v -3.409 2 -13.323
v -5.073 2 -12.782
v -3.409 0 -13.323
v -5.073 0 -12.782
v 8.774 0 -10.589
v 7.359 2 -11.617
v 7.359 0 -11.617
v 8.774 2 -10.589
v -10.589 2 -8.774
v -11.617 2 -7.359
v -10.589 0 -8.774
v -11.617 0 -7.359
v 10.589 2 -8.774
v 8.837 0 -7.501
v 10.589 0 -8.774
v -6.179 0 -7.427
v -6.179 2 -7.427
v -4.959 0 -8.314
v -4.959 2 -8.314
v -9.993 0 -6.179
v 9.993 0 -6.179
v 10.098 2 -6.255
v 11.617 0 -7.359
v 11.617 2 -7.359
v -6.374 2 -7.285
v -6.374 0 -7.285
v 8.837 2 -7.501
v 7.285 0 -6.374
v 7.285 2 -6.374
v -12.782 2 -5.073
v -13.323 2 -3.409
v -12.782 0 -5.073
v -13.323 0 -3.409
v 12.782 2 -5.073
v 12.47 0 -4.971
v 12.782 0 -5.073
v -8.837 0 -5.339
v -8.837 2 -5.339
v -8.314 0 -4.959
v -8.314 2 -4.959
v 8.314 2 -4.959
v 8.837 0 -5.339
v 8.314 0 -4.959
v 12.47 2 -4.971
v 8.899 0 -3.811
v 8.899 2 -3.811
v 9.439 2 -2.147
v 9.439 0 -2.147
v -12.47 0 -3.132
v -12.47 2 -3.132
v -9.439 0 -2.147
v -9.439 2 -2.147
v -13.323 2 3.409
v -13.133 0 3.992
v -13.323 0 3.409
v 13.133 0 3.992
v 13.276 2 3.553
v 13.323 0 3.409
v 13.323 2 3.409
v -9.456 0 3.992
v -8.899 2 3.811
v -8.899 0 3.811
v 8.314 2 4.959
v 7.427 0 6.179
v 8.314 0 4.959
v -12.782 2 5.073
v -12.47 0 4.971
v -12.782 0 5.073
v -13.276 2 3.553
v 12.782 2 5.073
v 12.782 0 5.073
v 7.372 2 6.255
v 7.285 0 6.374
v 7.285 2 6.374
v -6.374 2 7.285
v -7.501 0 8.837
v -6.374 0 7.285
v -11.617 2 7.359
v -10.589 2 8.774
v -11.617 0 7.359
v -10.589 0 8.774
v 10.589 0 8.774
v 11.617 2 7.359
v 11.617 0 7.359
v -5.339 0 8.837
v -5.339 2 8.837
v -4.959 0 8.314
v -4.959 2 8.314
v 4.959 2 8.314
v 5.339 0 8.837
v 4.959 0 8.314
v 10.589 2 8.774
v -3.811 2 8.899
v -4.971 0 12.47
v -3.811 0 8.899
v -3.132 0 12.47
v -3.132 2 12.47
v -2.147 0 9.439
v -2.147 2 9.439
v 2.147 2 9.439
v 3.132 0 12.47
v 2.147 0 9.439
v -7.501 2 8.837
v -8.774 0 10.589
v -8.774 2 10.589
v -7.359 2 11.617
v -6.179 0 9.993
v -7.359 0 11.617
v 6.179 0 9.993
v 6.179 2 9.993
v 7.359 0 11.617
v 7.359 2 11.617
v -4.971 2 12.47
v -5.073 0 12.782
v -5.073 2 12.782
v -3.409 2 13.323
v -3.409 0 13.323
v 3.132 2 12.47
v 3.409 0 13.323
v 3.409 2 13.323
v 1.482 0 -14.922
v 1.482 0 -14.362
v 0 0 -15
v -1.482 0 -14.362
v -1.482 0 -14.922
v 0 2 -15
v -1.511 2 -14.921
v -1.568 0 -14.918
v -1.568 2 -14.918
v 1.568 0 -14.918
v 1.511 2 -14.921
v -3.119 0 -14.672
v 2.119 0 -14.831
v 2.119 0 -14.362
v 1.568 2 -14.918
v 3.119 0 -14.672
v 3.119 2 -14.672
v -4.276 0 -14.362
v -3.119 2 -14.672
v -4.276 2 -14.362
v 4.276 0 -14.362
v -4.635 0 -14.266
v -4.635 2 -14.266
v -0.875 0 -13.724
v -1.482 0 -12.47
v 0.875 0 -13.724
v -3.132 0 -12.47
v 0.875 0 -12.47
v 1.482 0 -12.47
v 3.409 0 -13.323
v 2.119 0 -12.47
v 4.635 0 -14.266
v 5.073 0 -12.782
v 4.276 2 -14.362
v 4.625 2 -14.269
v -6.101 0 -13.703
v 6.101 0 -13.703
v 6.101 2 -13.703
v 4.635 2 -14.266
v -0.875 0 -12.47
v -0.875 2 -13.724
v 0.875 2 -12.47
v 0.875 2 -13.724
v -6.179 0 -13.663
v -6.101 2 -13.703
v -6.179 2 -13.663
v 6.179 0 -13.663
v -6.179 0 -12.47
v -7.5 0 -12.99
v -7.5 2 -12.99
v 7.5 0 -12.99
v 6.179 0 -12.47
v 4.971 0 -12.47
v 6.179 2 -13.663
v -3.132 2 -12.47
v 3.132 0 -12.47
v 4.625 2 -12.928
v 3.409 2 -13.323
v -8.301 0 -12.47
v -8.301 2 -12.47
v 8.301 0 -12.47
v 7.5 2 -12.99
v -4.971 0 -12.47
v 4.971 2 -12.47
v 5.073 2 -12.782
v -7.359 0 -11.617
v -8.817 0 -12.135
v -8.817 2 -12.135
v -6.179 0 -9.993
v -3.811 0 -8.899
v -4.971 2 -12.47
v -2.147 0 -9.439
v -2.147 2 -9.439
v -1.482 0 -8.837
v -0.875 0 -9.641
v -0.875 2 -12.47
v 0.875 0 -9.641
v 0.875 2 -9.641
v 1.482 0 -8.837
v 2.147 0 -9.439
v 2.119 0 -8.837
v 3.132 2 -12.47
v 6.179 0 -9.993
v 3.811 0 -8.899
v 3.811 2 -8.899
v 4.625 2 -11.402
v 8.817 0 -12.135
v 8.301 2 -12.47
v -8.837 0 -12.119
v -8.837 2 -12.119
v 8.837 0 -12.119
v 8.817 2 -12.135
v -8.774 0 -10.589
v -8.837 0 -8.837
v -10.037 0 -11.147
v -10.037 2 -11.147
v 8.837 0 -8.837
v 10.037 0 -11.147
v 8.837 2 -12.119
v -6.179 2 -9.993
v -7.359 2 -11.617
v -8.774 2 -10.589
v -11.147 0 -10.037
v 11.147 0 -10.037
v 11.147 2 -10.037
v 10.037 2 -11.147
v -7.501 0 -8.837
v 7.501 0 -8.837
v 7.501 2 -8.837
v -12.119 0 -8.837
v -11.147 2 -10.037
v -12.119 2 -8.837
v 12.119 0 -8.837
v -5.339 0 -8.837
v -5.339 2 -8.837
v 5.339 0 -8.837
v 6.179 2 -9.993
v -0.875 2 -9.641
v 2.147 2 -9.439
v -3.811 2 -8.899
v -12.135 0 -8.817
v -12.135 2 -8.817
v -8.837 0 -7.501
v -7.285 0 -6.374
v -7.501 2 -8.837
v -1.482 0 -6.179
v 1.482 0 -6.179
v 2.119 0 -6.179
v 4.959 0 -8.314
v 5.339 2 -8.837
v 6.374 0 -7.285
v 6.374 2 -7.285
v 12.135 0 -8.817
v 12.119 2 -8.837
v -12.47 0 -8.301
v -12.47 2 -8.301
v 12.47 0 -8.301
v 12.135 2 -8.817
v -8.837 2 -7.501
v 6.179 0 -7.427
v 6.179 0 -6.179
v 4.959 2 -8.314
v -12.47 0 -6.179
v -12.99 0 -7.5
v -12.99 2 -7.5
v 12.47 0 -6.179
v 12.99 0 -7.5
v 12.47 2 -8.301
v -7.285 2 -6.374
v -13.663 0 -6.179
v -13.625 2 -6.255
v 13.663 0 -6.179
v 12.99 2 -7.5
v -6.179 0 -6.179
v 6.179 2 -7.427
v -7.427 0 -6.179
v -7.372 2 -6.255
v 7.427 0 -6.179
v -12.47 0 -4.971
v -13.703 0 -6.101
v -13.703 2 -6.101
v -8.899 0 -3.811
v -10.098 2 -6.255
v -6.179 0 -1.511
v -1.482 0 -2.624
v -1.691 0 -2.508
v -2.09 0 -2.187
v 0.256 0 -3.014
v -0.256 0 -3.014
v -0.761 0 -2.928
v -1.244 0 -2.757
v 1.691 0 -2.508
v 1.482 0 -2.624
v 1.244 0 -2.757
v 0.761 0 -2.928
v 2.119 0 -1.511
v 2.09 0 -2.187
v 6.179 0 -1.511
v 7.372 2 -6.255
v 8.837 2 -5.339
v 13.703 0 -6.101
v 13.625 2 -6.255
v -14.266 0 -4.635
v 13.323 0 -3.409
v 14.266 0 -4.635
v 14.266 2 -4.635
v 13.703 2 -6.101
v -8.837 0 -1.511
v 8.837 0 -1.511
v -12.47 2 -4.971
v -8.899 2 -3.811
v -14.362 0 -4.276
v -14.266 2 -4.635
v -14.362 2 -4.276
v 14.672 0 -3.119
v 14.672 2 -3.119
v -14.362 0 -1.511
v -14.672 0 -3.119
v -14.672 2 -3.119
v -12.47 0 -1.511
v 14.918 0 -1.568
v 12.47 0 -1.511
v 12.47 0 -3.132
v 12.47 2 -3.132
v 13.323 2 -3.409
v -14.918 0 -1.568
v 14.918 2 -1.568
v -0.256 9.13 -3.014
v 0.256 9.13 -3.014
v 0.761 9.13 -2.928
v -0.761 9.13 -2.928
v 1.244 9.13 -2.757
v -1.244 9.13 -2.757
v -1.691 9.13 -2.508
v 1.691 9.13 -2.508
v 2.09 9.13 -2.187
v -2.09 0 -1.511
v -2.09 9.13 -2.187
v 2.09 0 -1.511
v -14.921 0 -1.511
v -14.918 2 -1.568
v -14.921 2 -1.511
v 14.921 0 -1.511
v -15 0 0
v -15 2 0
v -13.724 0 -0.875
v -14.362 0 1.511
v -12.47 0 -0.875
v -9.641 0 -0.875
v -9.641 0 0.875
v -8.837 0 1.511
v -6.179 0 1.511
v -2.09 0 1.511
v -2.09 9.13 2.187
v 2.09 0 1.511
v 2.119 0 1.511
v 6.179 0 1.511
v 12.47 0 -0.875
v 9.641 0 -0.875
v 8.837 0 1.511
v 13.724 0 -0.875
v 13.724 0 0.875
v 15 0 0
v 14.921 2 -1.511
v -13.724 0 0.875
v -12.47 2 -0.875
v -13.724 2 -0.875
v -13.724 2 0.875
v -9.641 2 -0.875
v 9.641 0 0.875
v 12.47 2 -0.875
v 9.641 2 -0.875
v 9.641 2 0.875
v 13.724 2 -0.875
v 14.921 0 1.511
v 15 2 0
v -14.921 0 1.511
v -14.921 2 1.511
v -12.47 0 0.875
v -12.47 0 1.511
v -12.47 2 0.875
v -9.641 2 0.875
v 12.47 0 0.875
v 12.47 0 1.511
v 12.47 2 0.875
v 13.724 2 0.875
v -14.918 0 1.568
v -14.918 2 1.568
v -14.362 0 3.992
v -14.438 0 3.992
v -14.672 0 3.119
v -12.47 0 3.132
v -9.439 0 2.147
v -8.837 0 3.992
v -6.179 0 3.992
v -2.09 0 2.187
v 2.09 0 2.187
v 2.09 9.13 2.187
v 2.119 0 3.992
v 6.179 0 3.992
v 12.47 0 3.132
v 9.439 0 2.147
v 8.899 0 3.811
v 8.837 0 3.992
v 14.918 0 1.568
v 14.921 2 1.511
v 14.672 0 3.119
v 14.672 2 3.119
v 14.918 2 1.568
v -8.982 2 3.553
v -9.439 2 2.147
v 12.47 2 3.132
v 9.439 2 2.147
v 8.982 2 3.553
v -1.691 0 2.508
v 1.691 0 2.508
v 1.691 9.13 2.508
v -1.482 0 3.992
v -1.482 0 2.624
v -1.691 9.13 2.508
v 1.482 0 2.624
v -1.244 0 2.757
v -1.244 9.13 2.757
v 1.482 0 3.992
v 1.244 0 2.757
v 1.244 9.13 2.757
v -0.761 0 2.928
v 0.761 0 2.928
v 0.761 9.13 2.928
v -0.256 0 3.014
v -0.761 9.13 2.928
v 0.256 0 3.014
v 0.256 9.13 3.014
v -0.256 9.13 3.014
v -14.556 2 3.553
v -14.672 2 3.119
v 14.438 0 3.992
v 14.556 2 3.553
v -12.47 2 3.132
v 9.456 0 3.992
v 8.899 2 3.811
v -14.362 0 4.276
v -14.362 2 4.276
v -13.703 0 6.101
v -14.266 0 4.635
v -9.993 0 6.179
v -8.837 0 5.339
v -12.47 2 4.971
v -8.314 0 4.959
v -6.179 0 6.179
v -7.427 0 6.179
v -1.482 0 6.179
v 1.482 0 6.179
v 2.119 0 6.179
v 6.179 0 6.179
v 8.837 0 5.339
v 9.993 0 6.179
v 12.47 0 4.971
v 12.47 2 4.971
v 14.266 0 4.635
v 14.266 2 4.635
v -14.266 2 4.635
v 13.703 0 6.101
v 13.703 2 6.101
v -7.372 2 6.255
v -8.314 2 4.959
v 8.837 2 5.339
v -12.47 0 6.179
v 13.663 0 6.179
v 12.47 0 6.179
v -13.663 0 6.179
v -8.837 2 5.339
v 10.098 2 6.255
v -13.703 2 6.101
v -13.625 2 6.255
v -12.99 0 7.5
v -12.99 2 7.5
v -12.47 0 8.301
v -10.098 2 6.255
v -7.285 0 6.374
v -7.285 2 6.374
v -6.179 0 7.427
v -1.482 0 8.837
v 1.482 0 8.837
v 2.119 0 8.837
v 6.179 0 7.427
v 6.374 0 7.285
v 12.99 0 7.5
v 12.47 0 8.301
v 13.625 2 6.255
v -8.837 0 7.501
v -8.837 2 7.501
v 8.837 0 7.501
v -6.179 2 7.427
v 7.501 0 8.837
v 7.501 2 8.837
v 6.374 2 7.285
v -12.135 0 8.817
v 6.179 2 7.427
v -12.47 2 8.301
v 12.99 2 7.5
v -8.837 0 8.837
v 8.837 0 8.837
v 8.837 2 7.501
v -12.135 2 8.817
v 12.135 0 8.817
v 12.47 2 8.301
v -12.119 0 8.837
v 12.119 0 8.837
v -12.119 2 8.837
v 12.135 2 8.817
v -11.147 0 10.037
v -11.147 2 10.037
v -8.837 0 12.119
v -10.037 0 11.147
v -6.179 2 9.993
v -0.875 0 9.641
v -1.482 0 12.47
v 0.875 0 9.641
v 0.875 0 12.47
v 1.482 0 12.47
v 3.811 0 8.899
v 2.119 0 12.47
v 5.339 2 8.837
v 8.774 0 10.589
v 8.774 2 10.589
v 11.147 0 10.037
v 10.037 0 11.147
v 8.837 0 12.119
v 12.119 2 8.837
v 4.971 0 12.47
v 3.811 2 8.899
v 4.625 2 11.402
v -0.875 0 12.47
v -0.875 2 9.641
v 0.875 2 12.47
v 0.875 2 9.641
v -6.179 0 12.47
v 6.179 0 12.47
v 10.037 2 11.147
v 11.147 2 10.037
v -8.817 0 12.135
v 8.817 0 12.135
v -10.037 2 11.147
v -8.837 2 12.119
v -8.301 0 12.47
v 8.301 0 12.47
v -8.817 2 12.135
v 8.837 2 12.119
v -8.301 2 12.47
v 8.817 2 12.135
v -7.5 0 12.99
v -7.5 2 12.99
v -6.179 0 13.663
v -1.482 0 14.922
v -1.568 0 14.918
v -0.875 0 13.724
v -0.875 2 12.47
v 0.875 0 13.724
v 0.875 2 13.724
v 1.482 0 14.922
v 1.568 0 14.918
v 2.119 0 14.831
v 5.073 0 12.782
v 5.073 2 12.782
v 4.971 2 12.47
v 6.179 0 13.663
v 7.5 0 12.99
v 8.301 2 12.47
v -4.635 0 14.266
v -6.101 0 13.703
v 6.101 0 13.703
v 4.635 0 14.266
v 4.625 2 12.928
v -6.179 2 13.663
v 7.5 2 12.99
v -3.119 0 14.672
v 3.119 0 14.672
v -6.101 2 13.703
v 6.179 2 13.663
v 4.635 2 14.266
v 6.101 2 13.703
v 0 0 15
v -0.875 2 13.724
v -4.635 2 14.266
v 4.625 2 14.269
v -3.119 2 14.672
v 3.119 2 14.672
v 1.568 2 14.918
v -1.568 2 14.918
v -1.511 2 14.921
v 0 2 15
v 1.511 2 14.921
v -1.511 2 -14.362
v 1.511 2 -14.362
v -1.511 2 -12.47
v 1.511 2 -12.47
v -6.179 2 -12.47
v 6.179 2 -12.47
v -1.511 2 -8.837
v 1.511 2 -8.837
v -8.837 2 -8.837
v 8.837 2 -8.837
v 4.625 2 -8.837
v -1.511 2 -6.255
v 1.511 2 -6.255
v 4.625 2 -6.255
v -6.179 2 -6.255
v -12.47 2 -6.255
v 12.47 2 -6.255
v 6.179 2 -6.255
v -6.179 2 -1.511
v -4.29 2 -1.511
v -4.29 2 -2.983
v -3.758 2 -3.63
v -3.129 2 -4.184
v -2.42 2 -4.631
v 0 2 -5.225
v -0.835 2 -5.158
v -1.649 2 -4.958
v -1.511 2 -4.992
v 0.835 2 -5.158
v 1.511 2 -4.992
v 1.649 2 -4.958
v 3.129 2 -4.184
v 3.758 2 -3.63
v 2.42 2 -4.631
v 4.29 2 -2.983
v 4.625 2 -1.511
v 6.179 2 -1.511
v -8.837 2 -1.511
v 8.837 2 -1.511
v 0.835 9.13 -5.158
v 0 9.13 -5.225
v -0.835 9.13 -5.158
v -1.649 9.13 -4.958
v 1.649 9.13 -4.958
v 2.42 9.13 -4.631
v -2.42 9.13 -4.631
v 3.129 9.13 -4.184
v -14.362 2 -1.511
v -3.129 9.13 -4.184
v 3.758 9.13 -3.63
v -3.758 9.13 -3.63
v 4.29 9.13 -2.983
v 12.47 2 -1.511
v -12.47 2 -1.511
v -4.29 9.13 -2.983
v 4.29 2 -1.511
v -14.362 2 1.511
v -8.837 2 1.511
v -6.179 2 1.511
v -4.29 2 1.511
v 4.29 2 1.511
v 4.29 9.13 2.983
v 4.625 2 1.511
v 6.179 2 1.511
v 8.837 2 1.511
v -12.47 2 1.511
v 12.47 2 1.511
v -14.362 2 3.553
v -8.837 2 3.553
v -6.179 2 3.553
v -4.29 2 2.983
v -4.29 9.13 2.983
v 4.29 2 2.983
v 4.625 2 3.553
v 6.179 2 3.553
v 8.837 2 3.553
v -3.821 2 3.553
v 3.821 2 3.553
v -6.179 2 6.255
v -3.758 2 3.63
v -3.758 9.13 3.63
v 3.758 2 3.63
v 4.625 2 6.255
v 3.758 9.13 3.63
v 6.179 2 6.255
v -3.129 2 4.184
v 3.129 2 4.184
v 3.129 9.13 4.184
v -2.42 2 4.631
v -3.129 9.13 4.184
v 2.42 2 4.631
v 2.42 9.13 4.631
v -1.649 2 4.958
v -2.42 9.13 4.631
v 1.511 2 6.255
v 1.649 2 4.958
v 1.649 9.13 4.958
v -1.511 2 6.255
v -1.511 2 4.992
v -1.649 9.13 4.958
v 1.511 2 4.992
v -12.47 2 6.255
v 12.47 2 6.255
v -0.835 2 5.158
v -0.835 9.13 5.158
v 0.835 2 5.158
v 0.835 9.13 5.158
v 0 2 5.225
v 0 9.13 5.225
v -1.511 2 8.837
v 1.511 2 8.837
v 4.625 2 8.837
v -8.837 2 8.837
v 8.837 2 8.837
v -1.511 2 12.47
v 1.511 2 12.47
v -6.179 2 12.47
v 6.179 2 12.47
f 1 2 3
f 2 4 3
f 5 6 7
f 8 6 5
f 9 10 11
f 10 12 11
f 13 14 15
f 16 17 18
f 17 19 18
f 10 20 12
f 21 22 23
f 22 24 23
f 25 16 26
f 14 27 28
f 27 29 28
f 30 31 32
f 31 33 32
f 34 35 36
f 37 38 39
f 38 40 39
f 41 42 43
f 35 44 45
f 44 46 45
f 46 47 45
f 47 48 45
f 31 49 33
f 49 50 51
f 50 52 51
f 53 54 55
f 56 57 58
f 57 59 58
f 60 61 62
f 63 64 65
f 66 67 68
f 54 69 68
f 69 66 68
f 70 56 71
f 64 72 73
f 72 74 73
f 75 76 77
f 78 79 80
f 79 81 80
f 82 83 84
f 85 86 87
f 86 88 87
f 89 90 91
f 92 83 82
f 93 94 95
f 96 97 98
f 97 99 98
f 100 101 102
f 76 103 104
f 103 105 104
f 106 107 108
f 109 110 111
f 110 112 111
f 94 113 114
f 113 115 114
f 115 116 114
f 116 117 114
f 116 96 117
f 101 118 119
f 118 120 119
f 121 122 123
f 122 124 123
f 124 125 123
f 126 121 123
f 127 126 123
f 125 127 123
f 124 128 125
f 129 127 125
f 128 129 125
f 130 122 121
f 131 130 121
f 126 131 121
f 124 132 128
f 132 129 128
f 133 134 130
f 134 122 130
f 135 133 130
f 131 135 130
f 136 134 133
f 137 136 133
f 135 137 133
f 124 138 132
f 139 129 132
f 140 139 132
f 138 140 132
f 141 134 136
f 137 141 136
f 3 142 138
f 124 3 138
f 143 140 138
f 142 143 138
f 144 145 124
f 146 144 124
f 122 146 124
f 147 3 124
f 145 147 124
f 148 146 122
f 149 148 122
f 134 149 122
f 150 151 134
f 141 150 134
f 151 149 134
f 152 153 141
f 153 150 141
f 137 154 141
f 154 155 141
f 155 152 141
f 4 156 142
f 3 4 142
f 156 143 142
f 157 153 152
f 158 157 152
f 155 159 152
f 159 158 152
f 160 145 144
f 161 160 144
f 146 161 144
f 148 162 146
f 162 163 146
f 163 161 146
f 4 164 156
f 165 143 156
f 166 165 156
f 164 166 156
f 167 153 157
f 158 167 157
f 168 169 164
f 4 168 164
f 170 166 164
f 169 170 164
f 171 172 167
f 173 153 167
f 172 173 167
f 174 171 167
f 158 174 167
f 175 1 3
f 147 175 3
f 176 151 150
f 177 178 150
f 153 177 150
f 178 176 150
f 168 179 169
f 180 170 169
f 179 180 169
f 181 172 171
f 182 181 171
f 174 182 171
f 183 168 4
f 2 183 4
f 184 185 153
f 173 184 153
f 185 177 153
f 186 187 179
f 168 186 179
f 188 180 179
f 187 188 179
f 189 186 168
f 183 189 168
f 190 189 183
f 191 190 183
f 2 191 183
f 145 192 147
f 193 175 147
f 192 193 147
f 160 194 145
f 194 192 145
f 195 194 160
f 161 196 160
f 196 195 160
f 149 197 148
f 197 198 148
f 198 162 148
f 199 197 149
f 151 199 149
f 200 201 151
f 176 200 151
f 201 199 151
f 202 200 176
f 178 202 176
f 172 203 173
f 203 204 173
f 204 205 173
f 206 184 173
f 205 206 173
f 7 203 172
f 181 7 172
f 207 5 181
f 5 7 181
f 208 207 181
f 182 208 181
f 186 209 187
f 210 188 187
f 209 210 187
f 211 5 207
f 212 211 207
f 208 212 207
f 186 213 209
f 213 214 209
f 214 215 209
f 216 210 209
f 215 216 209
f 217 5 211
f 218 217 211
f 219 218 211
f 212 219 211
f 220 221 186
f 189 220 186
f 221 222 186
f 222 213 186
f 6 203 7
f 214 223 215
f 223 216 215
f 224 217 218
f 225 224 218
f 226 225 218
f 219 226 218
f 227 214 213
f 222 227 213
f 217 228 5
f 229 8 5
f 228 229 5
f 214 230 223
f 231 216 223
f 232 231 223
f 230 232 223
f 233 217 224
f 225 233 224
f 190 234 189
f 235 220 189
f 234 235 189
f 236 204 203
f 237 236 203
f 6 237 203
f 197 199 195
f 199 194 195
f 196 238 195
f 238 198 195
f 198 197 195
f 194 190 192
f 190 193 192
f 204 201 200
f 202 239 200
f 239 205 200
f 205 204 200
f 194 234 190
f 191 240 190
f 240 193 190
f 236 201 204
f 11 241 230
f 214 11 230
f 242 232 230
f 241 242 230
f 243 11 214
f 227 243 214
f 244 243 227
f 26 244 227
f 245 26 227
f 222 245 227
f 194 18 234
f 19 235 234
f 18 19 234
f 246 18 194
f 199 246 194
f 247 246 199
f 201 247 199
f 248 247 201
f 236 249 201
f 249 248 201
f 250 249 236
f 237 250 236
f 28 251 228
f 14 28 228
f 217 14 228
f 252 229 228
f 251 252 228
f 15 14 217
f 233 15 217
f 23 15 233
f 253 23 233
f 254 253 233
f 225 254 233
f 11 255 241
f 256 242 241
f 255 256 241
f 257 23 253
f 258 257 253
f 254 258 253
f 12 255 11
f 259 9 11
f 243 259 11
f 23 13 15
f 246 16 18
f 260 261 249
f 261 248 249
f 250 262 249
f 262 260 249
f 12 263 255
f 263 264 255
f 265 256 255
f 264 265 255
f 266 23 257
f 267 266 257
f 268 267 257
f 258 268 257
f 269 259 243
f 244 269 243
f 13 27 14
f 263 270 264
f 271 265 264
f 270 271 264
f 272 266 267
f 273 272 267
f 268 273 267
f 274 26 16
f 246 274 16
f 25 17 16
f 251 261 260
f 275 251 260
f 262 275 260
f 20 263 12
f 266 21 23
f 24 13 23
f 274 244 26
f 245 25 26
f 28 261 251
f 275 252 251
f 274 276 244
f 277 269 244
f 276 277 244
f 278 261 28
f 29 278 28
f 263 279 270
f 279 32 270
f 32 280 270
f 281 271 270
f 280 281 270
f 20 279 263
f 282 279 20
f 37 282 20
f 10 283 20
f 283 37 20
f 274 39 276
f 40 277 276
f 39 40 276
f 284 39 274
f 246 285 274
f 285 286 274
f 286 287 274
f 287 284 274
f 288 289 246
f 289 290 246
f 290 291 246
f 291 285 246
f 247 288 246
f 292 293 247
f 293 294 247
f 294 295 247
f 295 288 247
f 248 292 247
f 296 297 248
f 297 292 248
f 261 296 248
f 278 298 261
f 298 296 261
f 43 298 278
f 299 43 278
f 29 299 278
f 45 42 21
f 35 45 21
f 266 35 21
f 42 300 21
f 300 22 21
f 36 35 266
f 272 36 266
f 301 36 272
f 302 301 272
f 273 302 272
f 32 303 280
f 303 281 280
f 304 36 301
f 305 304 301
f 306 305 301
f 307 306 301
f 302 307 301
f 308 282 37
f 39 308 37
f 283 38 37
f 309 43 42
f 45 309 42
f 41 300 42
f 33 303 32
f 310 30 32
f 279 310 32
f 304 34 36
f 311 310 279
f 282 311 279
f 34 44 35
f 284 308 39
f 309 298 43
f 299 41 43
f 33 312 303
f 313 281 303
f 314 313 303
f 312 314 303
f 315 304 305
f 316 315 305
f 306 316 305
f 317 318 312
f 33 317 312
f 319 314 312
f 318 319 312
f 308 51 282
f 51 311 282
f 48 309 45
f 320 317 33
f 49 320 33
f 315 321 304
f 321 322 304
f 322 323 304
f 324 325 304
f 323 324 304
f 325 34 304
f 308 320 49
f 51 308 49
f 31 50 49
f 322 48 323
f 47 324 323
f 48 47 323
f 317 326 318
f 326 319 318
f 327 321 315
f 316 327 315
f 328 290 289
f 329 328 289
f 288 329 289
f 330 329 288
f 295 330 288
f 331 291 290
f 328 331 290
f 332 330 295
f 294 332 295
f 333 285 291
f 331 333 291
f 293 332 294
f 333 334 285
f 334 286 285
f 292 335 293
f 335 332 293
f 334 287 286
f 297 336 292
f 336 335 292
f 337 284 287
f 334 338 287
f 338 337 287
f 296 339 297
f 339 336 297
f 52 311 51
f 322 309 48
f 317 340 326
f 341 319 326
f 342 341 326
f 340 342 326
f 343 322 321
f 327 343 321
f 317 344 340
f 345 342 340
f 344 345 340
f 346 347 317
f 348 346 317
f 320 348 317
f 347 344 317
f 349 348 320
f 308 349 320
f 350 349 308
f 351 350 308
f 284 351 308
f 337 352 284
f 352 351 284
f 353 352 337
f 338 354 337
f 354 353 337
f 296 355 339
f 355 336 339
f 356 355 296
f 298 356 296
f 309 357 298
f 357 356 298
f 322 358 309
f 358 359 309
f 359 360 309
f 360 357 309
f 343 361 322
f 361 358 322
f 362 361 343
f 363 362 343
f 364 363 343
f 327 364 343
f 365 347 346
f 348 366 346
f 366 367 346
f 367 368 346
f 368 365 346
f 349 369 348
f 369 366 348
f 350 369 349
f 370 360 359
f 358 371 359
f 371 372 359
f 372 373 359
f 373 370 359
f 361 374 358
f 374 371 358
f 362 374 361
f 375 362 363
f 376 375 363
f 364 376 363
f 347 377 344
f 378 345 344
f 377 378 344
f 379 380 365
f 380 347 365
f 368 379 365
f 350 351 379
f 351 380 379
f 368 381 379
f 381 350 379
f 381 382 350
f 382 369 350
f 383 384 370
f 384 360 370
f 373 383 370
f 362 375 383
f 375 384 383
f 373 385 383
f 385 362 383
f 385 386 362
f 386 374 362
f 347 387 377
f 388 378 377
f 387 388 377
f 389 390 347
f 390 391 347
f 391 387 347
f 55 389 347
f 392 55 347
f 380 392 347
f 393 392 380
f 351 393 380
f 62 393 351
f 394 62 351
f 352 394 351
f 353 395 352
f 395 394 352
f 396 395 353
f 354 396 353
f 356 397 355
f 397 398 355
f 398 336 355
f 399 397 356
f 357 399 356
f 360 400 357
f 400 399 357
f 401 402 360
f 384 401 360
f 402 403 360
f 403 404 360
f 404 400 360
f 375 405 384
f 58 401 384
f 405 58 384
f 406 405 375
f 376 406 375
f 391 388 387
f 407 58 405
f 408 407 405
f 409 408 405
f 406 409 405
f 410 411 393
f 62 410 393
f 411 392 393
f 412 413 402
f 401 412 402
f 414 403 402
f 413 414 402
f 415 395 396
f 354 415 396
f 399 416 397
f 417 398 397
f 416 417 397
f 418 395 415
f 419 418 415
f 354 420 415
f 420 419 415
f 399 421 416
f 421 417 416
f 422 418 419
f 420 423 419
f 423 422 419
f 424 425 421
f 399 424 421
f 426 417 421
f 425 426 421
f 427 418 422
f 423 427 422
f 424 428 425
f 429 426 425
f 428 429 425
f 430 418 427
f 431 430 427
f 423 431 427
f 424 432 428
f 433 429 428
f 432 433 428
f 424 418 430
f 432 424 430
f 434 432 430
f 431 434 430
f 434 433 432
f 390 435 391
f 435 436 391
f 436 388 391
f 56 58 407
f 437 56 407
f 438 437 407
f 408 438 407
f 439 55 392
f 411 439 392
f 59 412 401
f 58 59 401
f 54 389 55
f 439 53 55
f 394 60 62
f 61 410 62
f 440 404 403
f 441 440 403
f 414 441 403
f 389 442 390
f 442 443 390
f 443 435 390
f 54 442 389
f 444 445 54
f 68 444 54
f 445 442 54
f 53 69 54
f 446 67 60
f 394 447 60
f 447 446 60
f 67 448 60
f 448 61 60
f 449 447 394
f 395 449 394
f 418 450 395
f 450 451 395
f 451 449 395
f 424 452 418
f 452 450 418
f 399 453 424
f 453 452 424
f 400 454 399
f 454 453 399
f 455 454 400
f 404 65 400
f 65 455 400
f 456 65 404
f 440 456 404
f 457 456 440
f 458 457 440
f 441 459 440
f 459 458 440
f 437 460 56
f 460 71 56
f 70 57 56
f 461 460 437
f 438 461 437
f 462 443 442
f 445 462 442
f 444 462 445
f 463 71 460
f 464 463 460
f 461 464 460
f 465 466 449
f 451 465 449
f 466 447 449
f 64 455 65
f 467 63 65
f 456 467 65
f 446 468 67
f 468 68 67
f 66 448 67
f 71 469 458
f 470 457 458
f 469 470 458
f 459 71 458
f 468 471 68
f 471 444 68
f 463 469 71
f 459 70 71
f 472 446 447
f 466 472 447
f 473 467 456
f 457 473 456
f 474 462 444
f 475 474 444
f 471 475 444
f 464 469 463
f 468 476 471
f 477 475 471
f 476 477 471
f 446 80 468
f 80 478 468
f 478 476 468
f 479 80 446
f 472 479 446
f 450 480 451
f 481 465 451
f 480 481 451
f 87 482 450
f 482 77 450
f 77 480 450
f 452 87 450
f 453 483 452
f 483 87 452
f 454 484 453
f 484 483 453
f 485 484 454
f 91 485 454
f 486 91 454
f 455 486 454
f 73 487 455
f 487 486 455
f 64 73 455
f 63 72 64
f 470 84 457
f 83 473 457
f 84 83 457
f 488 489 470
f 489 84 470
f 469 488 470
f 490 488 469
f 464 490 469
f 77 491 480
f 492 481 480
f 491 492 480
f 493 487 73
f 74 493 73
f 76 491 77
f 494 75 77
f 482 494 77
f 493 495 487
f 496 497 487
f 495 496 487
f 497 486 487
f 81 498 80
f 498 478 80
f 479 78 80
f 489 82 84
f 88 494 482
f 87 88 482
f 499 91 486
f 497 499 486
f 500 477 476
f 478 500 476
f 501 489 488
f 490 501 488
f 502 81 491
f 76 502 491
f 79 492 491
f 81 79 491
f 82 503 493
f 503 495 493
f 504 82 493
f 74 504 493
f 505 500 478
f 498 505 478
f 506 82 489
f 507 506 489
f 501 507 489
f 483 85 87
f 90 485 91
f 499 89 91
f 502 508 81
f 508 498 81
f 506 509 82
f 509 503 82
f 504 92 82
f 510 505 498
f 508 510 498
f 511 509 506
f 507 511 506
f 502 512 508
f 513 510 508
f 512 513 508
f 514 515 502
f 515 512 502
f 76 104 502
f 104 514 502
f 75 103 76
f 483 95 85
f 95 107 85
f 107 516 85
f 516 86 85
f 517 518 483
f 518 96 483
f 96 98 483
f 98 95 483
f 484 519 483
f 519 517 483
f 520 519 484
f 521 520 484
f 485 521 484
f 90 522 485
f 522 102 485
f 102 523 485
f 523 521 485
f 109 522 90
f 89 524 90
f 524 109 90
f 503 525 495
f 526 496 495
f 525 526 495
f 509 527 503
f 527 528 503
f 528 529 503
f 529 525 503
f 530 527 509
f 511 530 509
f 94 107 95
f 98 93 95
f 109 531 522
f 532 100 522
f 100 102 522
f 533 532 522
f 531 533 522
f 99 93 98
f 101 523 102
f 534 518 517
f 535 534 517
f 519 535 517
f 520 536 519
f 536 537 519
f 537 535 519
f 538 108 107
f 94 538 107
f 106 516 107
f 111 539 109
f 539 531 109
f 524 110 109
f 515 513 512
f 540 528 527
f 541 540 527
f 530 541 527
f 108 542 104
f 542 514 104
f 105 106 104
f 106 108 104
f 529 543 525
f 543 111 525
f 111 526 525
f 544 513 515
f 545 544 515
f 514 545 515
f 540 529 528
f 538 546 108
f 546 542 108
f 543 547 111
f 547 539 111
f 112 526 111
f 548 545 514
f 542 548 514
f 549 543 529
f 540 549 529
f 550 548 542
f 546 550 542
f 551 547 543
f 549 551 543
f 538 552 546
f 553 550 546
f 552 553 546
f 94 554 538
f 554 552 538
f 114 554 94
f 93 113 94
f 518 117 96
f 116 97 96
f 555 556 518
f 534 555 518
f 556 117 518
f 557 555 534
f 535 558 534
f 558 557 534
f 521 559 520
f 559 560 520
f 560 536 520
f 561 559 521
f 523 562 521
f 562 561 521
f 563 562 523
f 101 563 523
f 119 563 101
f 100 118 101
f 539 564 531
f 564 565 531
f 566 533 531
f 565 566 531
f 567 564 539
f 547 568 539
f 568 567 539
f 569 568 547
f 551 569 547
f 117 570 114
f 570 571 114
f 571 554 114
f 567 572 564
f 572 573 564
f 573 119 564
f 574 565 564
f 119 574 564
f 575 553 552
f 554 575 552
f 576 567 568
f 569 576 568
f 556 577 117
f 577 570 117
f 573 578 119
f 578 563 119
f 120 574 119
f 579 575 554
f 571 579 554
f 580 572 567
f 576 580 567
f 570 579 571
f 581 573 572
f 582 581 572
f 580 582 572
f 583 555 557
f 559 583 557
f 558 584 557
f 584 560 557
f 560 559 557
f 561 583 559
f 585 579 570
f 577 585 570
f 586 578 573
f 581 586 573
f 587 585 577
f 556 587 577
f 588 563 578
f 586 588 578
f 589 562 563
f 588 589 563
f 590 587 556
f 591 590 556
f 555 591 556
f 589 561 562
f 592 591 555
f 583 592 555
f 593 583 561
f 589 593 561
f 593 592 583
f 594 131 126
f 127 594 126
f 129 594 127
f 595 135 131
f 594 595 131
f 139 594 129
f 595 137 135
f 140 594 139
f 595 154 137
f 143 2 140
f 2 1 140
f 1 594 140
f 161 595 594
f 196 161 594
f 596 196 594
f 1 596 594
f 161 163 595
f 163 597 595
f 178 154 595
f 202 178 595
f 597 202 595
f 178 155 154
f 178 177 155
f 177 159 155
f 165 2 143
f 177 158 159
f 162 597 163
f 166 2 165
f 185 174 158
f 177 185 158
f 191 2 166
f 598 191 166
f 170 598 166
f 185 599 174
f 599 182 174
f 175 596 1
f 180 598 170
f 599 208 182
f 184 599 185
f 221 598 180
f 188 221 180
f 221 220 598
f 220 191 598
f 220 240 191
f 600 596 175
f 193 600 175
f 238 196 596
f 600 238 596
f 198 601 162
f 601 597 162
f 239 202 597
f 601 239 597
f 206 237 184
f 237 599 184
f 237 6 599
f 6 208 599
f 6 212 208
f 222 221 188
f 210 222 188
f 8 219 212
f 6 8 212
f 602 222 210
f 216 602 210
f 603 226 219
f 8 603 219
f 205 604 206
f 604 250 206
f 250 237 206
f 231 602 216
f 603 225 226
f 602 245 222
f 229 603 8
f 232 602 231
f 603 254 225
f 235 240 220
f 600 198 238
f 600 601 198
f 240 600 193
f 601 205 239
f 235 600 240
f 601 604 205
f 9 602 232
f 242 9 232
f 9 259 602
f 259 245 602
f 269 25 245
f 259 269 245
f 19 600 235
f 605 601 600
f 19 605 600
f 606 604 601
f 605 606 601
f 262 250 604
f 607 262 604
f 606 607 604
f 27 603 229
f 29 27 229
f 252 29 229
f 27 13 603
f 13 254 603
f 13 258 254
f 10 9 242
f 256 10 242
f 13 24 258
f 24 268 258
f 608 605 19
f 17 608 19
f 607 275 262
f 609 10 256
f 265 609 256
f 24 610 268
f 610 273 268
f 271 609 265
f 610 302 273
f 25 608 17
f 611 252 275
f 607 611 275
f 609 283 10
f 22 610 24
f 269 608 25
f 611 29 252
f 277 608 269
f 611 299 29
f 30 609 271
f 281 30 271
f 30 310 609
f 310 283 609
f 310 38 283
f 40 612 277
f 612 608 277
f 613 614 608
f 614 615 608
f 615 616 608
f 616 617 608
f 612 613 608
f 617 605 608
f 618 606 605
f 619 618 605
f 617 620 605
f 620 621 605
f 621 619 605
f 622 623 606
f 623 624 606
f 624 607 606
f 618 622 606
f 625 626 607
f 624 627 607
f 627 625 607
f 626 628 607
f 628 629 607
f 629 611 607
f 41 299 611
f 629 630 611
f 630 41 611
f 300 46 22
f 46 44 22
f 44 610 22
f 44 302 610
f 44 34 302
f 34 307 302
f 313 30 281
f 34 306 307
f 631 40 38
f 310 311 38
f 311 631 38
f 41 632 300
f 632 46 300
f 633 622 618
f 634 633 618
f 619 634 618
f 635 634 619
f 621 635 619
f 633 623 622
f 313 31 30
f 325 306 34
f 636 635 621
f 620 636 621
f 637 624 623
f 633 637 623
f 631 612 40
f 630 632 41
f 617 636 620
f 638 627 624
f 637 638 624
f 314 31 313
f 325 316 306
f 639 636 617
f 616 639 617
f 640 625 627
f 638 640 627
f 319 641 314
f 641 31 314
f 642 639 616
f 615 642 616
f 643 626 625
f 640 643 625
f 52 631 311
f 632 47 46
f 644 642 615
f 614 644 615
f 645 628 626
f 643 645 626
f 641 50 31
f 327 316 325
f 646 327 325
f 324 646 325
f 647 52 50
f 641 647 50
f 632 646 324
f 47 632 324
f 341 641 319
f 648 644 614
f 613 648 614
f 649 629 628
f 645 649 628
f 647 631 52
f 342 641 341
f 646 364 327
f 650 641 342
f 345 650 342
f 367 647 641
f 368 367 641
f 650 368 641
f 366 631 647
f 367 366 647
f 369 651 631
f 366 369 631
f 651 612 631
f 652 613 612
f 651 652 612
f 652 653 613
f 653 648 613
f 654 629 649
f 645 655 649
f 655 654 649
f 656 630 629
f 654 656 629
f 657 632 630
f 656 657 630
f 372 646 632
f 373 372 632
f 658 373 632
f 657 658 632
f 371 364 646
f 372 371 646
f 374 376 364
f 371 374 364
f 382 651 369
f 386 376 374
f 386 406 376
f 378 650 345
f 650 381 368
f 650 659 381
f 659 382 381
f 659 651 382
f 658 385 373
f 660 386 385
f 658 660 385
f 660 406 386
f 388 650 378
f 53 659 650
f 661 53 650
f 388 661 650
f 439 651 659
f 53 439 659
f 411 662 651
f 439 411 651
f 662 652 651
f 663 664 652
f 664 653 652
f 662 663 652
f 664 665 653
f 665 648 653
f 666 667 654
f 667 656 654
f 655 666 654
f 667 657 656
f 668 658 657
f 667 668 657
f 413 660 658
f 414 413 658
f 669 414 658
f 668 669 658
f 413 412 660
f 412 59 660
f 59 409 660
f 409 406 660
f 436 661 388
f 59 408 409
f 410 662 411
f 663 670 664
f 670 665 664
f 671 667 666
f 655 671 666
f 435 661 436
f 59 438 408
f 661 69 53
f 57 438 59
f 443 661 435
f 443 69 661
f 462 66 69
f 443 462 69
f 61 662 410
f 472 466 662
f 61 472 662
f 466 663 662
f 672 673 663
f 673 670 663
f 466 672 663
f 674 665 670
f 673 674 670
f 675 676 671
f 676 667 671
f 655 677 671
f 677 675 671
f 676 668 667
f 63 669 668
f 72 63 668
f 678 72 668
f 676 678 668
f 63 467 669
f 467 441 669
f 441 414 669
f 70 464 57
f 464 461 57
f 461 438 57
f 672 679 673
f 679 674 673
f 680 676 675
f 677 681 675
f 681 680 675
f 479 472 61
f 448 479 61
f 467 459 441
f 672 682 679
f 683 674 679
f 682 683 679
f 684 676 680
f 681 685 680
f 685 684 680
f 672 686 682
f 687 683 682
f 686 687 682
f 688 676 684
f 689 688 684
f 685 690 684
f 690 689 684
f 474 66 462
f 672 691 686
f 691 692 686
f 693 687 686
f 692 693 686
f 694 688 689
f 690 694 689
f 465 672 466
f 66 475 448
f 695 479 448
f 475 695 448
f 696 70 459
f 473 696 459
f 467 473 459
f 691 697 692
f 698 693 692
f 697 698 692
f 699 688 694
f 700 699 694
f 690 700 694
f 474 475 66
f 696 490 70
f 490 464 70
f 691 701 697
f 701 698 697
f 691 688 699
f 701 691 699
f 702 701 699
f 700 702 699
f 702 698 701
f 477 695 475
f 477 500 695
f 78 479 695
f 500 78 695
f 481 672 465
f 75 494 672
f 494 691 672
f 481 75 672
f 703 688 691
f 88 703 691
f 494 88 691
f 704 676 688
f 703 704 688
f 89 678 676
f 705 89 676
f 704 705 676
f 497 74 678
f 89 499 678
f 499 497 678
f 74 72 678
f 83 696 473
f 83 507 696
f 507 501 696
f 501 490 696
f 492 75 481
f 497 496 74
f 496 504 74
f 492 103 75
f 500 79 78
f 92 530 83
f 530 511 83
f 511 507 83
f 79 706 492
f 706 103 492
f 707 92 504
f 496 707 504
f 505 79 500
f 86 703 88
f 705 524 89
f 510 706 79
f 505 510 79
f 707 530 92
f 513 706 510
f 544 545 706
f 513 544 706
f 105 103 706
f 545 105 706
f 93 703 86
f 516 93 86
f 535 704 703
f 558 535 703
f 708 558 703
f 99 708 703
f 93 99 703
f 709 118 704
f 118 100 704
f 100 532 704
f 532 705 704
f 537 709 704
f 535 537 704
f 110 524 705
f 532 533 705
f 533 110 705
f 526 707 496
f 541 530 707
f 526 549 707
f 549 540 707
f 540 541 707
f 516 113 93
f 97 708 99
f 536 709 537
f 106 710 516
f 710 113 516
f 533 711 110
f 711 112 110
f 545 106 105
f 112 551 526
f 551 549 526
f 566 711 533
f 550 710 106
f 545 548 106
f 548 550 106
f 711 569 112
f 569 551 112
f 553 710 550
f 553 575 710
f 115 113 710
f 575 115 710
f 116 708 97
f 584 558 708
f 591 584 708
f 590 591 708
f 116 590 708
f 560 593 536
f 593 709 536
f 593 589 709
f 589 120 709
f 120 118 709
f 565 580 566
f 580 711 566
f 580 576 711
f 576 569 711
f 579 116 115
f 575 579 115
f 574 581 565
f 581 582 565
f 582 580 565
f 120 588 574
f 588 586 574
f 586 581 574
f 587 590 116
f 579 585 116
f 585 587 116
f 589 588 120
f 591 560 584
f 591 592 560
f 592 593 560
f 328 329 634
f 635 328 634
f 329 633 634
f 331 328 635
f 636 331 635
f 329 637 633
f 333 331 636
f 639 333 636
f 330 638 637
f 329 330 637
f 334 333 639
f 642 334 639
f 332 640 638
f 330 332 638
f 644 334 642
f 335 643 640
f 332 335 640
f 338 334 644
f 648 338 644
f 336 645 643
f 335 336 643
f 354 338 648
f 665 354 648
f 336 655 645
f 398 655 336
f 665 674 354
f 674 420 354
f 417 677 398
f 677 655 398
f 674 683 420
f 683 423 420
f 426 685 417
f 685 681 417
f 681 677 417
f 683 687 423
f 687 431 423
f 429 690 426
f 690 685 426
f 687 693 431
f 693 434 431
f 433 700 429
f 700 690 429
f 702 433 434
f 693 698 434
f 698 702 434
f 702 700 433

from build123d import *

# Parameters (mm, degrees)
EXTRUS_O1_DEPTH = 8.3
EXTRUS_O2_DEPTH = 7.3
ESCALA3_SCALE   = 1.1
ESBO_O3_R       = 15
EXTRUS_O3_DEPTH = 2
EXTRUS_O4_DEPTH = 23.379385604
ESBO_O5_W       = 4.083358115
ESBO_O5_H       = 1.749439388
ESBO_O5_W_2     = 1.749439388
ESBO_O5_H_2     = 4.083358115
EXTRUS_O5_DEPTH = 2


with BuildPart() as part:
    # Esboço1 → Extrusão1 (new body)
    with BuildSketch(Plane(origin=(0, 0, 0), x_dir=(1, 0, 0), z_dir=(0, 1, 0))):
        with BuildLine():
            Line((3.9, 0), (0, 0))
            Line((0, 0), (-3.9, 0))
            Line((-3.9, 0), (-3.9, -2.711549373))
            ThreePointArc((-3.9, -2.711549373), (0, -4.75), (3.9, -2.711549373))
            Line((3.9, -2.711549373), (3.9, 0))
        make_face()
        with BuildLine():
            Line((-3.9, 0), (0, 0))
            Line((0, 0), (3.9, 0))
            Line((3.9, 0), (3.9, 2.711549373))
            ThreePointArc((3.9, 2.711549373), (0, 4.75), (-3.9, 2.711549373))
            Line((-3.9, 2.711549373), (-3.9, 0))
        make_face()
        with BuildLine():
            Line((-3.9, 0), (0, 0))
            Line((0, 0), (3.9, 0))
            Line((3.9, 0), (3.9, 2.711549373))
            ThreePointArc((3.9, 2.711549373), (0, 4.75), (-3.9, 2.711549373))
            Line((-3.9, 2.711549373), (-3.9, 0))
        make_face()
    extrude(amount=EXTRUS_O1_DEPTH)

    # Esboço2 → Extrusão2 (cut)
    with BuildSketch(Plane(origin=(0, 8.3, 0), x_dir=(1, 0, 0), z_dir=(0, 1, 0))):
        with BuildLine():
            Line((-1.9, 0), (0, 0))
            Line((0, 0), (1.9, 0))
            Line((1.9, 0), (1.9, 1.988089535))
            ThreePointArc((1.9, 1.988089535), (0, 2.75), (-1.9, 1.988089535))
            Line((-1.9, 1.988089535), (-1.9, 0))
        make_face()
        with BuildLine():
            Line((1.9, 0), (0, 0))
            Line((0, 0), (-1.9, 0))
            Line((-1.9, 0), (-1.9, -1.988089535))
            ThreePointArc((-1.9, -1.988089535), (0, -2.75), (1.9, -1.988089535))
            Line((1.9, -1.988089535), (1.9, 0))
        make_face()
    extrude(amount=-EXTRUS_O2_DEPTH, mode=Mode.SUBTRACT)


with BuildPart() as part_1:
    # Escala3: scaled about (0, 0, 0)
    add(part.part.scale(ESCALA3_SCALE))

    # Esboço3 → Extrusão3 (add)
    with BuildSketch(Plane(origin=(0, 0, 0), x_dir=(1, 0, 0), z_dir=(0, 1, 0))):
        with Locations(Location((0, 0, 0), (0, 0, 270))):
            Circle(ESBO_O3_R)
    extrude(amount=EXTRUS_O3_DEPTH)

    # Esboço4 → Extrusão4 (cut, through all)
    with BuildSketch(Plane(origin=(0, 2, 0), x_dir=(1, 0, 0), z_dir=(0, 1, 0))):
        with BuildLine():
            Line((2.09, -2.186898489), (2.09, 2.186898489))
            ThreePointArc((2.09, 2.186898489), (0, 3.025), (-2.09, 2.186898489))
            Line((-2.09, 2.186898489), (-2.09, -2.186898489))
            ThreePointArc((-2.09, -2.186898489), (0, -3.025), (2.09, -2.186898489))
        make_face()
    extrude(amount=-EXTRUS_O4_DEPTH, mode=Mode.SUBTRACT)

    # Esboço5 → Extrusão5 (cut)
    with BuildSketch(Plane.XZ):
        Polygon((-2.14724761, -9.439201012), (-3.409074662, -13.322705355), (-5.072890392, -12.782098853), (-3.81106334, -8.89859451), align=None)
        Polygon((-4.959027358, -8.313677628), (-7.359165037, -11.617183737), (-8.774491233, -10.588889065), (-6.374353553, -7.285382956), align=None)
        Polygon((-7.285382956, -6.374353553), (-10.588889065, -8.774491233), (-11.617183737, -7.359165037), (-8.313677628, -4.959027358), align=None)
        Polygon((3.81106334, -8.89859451), (5.072890392, -12.782098853), (3.409074662, -13.322705355), (2.14724761, -9.439201012), align=None)
        Polygon((6.374353553, -7.285382956), (8.774491233, -10.588889065), (7.359165037, -11.617183737), (4.959027358, -8.313677628), align=None)
        Polygon((8.313677628, -4.959027358), (11.617183737, -7.359165037), (10.588889065, -8.774491233), (7.285382956, -6.374353553), align=None)
        Polygon((9.439201012, -2.14724761), (13.322705355, -3.409074662), (12.782098853, -5.072890392), (8.89859451, -3.81106334), align=None)
        with Locations((11.682428691, 0)):
            Rectangle(ESBO_O5_W, ESBO_O5_H)
        Polygon((8.89859451, 3.81106334), (12.782098853, 5.072890392), (13.322705355, 3.409074662), (9.439201012, 2.14724761), align=None)
        Polygon((4.959027358, 8.313677628), (7.359165037, 11.617183737), (8.774491233, 10.588889065), (6.374353553, 7.285382956), align=None)
        with Locations((0, 11.682428691)):
            Rectangle(ESBO_O5_W_2, ESBO_O5_H_2)
        Polygon((-3.81106334, 8.89859451), (-5.072890392, 12.782098853), (-3.409074662, 13.322705355), (-2.14724761, 9.439201012), align=None)
        with Locations((-11.682428691, 0)):
            Rectangle(ESBO_O5_W, ESBO_O5_H)
        Polygon((-8.89859451, -3.81106334), (-12.782098853, -5.072890392), (-13.322705355, -3.409074662), (-9.439201012, -2.14724761), align=None)
        with Locations((0, -11.682428691)):
            Rectangle(ESBO_O5_W_2, ESBO_O5_H_2)
        Polygon((8.313677628, 4.959027358), (7.285382956, 6.374353553), (10.588889065, 8.774491233), (11.617183737, 7.359165037), align=None)
        Polygon((2.14724761, 9.439201012), (3.409074662, 13.322705355), (5.072890392, 12.782098853), (3.81106334, 8.89859451), align=None)
        Polygon((-7.359165037, 11.617183737), (-8.774491233, 10.588889065), (-6.374353553, 7.285382956), (-4.959027358, 8.313677628), align=None)
        Polygon((-10.588889065, 8.774491233), (-11.617183737, 7.359165037), (-8.313677628, 4.959027358), (-7.285382956, 6.374353553), align=None)
        Polygon((-12.782098853, 5.072890392), (-13.322705355, 3.409074662), (-9.439201012, 2.14724761), (-8.89859451, 3.81106334), align=None)
    extrude(amount=-EXTRUS_O5_DEPTH, mode=Mode.SUBTRACT)


solid = part_1.part
